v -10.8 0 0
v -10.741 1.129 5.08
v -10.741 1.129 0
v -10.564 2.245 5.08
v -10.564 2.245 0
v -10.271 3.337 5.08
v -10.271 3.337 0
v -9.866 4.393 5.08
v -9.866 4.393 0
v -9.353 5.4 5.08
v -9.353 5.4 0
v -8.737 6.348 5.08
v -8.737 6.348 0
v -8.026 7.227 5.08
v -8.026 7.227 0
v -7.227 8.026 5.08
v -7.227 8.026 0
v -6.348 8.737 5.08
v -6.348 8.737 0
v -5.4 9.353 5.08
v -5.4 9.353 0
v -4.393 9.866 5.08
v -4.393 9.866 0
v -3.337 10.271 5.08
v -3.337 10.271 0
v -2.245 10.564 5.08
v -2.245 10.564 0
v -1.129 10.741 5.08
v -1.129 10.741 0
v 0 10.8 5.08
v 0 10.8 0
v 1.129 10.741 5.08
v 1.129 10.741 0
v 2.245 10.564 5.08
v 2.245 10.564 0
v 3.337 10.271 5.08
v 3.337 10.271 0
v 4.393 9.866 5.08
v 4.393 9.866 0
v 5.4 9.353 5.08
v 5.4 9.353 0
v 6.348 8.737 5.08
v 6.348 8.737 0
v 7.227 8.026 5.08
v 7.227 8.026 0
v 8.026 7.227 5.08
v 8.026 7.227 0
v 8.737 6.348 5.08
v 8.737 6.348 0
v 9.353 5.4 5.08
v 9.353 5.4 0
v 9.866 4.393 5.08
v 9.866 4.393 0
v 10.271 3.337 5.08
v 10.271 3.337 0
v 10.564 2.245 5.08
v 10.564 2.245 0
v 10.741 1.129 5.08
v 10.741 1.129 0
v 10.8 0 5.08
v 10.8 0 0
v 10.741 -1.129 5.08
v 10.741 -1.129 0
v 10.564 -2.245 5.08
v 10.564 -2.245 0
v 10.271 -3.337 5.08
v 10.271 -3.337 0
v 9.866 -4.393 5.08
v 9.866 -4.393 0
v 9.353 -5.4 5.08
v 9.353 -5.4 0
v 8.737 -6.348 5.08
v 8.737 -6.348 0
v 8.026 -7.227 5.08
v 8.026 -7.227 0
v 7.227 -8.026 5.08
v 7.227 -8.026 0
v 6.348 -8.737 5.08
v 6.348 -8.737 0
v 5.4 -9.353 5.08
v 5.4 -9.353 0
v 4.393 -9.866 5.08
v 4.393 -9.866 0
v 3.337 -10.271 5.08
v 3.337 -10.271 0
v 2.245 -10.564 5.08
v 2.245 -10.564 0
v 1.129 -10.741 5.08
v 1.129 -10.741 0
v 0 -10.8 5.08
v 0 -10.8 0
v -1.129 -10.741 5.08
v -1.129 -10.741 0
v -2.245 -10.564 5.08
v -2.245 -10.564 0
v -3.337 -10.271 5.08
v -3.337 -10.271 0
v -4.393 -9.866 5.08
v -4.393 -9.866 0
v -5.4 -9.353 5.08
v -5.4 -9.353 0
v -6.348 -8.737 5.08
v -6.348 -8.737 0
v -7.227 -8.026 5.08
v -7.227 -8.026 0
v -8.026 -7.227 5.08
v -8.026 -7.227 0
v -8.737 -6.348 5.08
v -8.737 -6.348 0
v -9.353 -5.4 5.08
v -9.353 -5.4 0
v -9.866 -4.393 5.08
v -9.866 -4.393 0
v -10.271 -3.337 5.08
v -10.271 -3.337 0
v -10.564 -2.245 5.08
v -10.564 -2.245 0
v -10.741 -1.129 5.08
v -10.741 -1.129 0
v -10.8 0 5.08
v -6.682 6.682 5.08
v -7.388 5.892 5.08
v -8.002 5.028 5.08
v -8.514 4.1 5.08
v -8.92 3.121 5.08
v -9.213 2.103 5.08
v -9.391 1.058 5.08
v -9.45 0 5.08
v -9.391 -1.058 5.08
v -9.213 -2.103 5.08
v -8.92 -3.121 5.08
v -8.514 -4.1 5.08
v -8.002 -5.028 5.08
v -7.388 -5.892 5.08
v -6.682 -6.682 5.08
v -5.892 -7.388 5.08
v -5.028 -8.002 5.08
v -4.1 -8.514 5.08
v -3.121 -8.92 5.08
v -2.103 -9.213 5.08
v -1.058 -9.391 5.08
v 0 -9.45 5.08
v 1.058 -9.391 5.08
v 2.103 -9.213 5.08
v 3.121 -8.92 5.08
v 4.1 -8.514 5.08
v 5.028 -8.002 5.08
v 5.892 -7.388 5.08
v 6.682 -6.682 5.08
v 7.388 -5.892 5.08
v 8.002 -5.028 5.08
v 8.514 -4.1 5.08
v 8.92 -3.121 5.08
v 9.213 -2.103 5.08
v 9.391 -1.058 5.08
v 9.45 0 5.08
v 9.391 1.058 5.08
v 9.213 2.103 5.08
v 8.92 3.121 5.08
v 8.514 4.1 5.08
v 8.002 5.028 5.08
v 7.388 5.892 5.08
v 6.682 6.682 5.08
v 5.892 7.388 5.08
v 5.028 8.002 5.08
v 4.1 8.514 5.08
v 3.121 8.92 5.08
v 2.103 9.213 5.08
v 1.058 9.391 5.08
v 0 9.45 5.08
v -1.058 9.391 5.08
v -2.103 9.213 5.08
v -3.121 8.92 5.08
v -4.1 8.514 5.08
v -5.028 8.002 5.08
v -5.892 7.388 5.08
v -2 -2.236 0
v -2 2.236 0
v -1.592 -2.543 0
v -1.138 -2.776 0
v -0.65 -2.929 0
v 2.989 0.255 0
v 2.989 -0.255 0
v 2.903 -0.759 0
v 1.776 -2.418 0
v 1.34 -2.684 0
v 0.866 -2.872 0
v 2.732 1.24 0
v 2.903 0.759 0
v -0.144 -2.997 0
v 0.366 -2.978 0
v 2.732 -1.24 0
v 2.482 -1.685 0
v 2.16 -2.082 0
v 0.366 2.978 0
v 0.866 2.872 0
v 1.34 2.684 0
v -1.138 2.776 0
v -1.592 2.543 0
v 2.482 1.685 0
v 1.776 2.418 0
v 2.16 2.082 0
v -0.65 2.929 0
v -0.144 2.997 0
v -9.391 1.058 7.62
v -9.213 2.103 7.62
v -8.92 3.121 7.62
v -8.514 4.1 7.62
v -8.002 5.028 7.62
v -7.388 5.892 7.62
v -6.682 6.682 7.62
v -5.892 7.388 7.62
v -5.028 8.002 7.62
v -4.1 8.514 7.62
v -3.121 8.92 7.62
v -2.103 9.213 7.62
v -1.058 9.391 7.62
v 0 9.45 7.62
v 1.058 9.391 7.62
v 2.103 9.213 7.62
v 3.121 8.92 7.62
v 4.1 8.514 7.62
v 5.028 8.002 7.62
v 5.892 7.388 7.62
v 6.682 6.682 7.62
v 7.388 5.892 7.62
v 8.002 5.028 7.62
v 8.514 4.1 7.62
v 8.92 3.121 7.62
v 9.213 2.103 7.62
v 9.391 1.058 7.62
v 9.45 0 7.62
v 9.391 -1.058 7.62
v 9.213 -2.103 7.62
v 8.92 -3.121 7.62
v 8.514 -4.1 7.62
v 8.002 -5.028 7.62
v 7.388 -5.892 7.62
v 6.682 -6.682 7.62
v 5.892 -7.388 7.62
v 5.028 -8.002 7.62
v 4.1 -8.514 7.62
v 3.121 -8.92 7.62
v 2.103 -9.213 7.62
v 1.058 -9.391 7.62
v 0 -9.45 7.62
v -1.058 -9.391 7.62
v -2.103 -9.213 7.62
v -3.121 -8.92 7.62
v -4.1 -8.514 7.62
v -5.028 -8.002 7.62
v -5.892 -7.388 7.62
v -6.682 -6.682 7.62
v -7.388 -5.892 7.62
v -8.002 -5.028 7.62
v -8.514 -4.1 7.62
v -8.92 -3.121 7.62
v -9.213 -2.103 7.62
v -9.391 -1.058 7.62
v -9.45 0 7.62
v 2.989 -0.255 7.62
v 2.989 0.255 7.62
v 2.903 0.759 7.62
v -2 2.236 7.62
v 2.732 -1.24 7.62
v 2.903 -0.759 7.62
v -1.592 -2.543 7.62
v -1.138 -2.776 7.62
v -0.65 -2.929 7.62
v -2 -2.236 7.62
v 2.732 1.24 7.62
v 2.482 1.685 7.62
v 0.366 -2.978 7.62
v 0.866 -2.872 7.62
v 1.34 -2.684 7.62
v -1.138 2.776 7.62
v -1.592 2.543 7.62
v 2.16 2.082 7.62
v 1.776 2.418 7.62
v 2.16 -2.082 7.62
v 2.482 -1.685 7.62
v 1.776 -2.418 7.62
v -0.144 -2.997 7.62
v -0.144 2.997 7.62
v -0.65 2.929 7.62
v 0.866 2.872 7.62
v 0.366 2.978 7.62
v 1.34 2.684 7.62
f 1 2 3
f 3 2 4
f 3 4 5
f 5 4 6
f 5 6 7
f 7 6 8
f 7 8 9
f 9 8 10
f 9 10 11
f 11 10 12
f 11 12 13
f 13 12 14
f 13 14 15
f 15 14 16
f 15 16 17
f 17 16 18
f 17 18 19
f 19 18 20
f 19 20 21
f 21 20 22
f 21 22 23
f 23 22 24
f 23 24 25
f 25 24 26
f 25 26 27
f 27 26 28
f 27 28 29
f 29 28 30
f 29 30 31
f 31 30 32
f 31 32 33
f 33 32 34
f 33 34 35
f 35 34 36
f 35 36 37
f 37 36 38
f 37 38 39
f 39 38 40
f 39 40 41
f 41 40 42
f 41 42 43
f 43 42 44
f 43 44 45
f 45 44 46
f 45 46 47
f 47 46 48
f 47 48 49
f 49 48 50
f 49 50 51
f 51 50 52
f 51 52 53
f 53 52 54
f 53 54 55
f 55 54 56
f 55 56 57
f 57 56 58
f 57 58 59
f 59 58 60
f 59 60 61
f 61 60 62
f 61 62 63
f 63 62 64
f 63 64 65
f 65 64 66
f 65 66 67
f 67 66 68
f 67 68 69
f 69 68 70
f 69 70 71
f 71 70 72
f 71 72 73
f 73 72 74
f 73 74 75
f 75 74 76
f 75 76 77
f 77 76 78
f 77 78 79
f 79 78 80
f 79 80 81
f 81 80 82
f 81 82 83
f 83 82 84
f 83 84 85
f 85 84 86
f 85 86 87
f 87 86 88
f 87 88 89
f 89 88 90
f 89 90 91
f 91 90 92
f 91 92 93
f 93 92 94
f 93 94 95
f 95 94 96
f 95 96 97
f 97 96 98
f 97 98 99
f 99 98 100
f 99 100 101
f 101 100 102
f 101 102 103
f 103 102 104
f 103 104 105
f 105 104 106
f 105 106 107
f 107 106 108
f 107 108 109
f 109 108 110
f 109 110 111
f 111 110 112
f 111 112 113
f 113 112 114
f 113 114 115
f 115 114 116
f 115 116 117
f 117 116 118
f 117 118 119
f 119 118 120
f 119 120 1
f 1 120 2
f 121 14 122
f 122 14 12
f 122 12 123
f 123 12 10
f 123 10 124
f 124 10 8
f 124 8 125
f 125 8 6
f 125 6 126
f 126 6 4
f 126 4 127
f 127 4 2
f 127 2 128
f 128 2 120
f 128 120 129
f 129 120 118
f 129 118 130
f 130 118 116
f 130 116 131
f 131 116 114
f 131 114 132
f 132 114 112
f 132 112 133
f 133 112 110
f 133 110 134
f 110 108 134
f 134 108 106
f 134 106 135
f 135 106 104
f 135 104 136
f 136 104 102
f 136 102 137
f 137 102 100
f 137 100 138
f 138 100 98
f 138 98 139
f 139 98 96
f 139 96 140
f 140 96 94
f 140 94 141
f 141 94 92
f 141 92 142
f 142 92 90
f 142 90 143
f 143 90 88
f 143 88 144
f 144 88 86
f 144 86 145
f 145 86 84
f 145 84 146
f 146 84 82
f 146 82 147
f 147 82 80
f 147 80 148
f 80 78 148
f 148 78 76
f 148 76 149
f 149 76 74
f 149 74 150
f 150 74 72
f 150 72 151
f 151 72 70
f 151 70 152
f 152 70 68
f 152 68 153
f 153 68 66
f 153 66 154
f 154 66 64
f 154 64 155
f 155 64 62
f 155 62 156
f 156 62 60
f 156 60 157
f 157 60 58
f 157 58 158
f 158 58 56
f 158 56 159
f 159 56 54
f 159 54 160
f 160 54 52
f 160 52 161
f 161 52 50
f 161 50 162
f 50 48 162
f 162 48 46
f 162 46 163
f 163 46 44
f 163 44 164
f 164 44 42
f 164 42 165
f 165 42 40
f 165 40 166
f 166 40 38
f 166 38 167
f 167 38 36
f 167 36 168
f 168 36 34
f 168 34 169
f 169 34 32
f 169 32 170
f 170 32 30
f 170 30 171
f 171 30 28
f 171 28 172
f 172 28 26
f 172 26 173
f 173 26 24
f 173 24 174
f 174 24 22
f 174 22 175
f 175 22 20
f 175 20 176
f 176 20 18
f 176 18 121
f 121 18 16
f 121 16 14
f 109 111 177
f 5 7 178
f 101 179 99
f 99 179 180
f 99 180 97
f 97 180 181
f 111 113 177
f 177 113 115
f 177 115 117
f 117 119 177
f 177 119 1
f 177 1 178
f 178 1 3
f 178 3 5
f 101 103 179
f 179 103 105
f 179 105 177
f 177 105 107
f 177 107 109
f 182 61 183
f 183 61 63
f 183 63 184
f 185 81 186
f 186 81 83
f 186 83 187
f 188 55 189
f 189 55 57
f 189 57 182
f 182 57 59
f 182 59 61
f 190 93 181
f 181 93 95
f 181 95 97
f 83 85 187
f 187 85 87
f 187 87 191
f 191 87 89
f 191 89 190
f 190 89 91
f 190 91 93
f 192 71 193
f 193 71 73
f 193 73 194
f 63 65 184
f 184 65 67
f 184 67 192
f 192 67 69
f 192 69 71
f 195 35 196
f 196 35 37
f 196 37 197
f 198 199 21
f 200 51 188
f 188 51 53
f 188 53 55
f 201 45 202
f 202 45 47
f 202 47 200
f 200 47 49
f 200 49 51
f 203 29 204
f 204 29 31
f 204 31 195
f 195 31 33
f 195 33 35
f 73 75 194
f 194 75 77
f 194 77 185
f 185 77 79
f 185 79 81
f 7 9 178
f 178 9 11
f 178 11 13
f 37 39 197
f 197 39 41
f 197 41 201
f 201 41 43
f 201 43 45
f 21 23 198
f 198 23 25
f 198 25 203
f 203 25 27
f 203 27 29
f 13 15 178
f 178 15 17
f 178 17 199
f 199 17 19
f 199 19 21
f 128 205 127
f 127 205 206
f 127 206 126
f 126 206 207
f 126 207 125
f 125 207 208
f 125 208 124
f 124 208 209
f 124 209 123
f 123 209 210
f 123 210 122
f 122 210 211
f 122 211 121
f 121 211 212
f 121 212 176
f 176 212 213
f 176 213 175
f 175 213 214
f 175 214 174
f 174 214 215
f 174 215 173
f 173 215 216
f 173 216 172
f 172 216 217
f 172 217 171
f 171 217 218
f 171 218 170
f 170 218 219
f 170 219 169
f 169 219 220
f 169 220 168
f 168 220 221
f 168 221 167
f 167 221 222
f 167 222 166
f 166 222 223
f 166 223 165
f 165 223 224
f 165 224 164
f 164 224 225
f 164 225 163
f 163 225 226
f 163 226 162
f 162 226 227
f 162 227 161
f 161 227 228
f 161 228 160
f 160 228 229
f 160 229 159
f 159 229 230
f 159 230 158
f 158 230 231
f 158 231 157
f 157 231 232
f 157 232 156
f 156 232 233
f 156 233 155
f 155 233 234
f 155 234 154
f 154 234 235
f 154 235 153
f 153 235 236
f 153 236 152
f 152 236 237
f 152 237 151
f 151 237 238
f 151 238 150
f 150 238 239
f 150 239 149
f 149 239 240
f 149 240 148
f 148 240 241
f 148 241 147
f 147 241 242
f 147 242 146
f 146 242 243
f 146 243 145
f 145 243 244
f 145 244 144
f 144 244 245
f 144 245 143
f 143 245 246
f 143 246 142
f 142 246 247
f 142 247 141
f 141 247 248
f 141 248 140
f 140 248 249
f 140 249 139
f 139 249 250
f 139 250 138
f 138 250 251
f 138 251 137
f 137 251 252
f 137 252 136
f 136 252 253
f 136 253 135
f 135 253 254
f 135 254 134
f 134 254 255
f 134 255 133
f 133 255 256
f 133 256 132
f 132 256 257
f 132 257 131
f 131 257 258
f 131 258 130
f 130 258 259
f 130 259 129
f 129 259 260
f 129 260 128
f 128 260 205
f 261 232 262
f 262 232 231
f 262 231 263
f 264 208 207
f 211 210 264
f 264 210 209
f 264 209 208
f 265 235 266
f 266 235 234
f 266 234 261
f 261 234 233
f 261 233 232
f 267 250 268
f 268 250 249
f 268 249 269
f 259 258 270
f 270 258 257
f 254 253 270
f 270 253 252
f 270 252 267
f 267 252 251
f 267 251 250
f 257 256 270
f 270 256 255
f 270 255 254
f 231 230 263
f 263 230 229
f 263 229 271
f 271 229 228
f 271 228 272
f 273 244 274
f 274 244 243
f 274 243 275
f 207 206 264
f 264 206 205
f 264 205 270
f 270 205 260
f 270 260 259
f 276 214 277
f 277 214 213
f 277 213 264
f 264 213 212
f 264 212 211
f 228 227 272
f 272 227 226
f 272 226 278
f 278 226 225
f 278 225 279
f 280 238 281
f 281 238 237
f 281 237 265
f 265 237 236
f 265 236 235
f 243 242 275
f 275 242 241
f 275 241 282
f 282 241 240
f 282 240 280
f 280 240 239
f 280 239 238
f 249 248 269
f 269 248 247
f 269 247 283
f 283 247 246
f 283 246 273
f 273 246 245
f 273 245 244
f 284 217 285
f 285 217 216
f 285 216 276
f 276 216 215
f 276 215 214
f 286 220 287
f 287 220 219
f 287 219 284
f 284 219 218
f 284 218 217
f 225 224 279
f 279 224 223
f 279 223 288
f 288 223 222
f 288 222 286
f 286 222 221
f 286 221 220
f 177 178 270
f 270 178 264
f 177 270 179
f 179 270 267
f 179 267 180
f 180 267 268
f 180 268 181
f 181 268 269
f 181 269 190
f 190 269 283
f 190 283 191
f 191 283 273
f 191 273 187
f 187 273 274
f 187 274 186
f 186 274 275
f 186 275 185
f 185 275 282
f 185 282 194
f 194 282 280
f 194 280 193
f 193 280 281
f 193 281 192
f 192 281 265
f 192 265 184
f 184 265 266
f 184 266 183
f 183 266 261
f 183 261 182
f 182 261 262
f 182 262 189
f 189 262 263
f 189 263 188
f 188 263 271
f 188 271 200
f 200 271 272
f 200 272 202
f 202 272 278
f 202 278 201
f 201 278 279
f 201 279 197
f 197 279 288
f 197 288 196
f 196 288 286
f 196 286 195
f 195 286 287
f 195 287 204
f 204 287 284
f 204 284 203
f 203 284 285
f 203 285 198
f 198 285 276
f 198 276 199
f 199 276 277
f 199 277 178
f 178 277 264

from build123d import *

# Parameters (mm, degrees)
SKETCH1_R           = 10.8
BOSS_EXTRUDE1_DEPTH = 5.08
SKETCH2_R           = 9.45
BOSS_EXTRUDE2_DEPTH = 2.54
CUT_EXTRUDE1_DEPTH  = 18.068813667


with BuildPart() as part:
    # Sketch1 → Boss-Extrude1 (new body)
    with BuildSketch(Plane.XY):
        Circle(SKETCH1_R)
    extrude(amount=BOSS_EXTRUDE1_DEPTH)

    # Sketch2 → Boss-Extrude2 (add)
    with BuildSketch(Plane.XY.offset(5.08)):
        Circle(SKETCH2_R)
    extrude(amount=BOSS_EXTRUDE2_DEPTH)

    # Sketch3 → Cut-Extrude1 (cut, through all)
    with BuildSketch(Plane.XY.offset(7.62)):
        with BuildLine():
            Line((-2, 0), (-2, 2.236067977))
            ThreePointArc((-2, 2.236067977), (3, 0), (-2, -2.236067977))
            Line((-2, -2.236067977), (-2, 0))
        make_face()
    extrude(amount=-CUT_EXTRUDE1_DEPTH, mode=Mode.SUBTRACT)


solid = part.part
